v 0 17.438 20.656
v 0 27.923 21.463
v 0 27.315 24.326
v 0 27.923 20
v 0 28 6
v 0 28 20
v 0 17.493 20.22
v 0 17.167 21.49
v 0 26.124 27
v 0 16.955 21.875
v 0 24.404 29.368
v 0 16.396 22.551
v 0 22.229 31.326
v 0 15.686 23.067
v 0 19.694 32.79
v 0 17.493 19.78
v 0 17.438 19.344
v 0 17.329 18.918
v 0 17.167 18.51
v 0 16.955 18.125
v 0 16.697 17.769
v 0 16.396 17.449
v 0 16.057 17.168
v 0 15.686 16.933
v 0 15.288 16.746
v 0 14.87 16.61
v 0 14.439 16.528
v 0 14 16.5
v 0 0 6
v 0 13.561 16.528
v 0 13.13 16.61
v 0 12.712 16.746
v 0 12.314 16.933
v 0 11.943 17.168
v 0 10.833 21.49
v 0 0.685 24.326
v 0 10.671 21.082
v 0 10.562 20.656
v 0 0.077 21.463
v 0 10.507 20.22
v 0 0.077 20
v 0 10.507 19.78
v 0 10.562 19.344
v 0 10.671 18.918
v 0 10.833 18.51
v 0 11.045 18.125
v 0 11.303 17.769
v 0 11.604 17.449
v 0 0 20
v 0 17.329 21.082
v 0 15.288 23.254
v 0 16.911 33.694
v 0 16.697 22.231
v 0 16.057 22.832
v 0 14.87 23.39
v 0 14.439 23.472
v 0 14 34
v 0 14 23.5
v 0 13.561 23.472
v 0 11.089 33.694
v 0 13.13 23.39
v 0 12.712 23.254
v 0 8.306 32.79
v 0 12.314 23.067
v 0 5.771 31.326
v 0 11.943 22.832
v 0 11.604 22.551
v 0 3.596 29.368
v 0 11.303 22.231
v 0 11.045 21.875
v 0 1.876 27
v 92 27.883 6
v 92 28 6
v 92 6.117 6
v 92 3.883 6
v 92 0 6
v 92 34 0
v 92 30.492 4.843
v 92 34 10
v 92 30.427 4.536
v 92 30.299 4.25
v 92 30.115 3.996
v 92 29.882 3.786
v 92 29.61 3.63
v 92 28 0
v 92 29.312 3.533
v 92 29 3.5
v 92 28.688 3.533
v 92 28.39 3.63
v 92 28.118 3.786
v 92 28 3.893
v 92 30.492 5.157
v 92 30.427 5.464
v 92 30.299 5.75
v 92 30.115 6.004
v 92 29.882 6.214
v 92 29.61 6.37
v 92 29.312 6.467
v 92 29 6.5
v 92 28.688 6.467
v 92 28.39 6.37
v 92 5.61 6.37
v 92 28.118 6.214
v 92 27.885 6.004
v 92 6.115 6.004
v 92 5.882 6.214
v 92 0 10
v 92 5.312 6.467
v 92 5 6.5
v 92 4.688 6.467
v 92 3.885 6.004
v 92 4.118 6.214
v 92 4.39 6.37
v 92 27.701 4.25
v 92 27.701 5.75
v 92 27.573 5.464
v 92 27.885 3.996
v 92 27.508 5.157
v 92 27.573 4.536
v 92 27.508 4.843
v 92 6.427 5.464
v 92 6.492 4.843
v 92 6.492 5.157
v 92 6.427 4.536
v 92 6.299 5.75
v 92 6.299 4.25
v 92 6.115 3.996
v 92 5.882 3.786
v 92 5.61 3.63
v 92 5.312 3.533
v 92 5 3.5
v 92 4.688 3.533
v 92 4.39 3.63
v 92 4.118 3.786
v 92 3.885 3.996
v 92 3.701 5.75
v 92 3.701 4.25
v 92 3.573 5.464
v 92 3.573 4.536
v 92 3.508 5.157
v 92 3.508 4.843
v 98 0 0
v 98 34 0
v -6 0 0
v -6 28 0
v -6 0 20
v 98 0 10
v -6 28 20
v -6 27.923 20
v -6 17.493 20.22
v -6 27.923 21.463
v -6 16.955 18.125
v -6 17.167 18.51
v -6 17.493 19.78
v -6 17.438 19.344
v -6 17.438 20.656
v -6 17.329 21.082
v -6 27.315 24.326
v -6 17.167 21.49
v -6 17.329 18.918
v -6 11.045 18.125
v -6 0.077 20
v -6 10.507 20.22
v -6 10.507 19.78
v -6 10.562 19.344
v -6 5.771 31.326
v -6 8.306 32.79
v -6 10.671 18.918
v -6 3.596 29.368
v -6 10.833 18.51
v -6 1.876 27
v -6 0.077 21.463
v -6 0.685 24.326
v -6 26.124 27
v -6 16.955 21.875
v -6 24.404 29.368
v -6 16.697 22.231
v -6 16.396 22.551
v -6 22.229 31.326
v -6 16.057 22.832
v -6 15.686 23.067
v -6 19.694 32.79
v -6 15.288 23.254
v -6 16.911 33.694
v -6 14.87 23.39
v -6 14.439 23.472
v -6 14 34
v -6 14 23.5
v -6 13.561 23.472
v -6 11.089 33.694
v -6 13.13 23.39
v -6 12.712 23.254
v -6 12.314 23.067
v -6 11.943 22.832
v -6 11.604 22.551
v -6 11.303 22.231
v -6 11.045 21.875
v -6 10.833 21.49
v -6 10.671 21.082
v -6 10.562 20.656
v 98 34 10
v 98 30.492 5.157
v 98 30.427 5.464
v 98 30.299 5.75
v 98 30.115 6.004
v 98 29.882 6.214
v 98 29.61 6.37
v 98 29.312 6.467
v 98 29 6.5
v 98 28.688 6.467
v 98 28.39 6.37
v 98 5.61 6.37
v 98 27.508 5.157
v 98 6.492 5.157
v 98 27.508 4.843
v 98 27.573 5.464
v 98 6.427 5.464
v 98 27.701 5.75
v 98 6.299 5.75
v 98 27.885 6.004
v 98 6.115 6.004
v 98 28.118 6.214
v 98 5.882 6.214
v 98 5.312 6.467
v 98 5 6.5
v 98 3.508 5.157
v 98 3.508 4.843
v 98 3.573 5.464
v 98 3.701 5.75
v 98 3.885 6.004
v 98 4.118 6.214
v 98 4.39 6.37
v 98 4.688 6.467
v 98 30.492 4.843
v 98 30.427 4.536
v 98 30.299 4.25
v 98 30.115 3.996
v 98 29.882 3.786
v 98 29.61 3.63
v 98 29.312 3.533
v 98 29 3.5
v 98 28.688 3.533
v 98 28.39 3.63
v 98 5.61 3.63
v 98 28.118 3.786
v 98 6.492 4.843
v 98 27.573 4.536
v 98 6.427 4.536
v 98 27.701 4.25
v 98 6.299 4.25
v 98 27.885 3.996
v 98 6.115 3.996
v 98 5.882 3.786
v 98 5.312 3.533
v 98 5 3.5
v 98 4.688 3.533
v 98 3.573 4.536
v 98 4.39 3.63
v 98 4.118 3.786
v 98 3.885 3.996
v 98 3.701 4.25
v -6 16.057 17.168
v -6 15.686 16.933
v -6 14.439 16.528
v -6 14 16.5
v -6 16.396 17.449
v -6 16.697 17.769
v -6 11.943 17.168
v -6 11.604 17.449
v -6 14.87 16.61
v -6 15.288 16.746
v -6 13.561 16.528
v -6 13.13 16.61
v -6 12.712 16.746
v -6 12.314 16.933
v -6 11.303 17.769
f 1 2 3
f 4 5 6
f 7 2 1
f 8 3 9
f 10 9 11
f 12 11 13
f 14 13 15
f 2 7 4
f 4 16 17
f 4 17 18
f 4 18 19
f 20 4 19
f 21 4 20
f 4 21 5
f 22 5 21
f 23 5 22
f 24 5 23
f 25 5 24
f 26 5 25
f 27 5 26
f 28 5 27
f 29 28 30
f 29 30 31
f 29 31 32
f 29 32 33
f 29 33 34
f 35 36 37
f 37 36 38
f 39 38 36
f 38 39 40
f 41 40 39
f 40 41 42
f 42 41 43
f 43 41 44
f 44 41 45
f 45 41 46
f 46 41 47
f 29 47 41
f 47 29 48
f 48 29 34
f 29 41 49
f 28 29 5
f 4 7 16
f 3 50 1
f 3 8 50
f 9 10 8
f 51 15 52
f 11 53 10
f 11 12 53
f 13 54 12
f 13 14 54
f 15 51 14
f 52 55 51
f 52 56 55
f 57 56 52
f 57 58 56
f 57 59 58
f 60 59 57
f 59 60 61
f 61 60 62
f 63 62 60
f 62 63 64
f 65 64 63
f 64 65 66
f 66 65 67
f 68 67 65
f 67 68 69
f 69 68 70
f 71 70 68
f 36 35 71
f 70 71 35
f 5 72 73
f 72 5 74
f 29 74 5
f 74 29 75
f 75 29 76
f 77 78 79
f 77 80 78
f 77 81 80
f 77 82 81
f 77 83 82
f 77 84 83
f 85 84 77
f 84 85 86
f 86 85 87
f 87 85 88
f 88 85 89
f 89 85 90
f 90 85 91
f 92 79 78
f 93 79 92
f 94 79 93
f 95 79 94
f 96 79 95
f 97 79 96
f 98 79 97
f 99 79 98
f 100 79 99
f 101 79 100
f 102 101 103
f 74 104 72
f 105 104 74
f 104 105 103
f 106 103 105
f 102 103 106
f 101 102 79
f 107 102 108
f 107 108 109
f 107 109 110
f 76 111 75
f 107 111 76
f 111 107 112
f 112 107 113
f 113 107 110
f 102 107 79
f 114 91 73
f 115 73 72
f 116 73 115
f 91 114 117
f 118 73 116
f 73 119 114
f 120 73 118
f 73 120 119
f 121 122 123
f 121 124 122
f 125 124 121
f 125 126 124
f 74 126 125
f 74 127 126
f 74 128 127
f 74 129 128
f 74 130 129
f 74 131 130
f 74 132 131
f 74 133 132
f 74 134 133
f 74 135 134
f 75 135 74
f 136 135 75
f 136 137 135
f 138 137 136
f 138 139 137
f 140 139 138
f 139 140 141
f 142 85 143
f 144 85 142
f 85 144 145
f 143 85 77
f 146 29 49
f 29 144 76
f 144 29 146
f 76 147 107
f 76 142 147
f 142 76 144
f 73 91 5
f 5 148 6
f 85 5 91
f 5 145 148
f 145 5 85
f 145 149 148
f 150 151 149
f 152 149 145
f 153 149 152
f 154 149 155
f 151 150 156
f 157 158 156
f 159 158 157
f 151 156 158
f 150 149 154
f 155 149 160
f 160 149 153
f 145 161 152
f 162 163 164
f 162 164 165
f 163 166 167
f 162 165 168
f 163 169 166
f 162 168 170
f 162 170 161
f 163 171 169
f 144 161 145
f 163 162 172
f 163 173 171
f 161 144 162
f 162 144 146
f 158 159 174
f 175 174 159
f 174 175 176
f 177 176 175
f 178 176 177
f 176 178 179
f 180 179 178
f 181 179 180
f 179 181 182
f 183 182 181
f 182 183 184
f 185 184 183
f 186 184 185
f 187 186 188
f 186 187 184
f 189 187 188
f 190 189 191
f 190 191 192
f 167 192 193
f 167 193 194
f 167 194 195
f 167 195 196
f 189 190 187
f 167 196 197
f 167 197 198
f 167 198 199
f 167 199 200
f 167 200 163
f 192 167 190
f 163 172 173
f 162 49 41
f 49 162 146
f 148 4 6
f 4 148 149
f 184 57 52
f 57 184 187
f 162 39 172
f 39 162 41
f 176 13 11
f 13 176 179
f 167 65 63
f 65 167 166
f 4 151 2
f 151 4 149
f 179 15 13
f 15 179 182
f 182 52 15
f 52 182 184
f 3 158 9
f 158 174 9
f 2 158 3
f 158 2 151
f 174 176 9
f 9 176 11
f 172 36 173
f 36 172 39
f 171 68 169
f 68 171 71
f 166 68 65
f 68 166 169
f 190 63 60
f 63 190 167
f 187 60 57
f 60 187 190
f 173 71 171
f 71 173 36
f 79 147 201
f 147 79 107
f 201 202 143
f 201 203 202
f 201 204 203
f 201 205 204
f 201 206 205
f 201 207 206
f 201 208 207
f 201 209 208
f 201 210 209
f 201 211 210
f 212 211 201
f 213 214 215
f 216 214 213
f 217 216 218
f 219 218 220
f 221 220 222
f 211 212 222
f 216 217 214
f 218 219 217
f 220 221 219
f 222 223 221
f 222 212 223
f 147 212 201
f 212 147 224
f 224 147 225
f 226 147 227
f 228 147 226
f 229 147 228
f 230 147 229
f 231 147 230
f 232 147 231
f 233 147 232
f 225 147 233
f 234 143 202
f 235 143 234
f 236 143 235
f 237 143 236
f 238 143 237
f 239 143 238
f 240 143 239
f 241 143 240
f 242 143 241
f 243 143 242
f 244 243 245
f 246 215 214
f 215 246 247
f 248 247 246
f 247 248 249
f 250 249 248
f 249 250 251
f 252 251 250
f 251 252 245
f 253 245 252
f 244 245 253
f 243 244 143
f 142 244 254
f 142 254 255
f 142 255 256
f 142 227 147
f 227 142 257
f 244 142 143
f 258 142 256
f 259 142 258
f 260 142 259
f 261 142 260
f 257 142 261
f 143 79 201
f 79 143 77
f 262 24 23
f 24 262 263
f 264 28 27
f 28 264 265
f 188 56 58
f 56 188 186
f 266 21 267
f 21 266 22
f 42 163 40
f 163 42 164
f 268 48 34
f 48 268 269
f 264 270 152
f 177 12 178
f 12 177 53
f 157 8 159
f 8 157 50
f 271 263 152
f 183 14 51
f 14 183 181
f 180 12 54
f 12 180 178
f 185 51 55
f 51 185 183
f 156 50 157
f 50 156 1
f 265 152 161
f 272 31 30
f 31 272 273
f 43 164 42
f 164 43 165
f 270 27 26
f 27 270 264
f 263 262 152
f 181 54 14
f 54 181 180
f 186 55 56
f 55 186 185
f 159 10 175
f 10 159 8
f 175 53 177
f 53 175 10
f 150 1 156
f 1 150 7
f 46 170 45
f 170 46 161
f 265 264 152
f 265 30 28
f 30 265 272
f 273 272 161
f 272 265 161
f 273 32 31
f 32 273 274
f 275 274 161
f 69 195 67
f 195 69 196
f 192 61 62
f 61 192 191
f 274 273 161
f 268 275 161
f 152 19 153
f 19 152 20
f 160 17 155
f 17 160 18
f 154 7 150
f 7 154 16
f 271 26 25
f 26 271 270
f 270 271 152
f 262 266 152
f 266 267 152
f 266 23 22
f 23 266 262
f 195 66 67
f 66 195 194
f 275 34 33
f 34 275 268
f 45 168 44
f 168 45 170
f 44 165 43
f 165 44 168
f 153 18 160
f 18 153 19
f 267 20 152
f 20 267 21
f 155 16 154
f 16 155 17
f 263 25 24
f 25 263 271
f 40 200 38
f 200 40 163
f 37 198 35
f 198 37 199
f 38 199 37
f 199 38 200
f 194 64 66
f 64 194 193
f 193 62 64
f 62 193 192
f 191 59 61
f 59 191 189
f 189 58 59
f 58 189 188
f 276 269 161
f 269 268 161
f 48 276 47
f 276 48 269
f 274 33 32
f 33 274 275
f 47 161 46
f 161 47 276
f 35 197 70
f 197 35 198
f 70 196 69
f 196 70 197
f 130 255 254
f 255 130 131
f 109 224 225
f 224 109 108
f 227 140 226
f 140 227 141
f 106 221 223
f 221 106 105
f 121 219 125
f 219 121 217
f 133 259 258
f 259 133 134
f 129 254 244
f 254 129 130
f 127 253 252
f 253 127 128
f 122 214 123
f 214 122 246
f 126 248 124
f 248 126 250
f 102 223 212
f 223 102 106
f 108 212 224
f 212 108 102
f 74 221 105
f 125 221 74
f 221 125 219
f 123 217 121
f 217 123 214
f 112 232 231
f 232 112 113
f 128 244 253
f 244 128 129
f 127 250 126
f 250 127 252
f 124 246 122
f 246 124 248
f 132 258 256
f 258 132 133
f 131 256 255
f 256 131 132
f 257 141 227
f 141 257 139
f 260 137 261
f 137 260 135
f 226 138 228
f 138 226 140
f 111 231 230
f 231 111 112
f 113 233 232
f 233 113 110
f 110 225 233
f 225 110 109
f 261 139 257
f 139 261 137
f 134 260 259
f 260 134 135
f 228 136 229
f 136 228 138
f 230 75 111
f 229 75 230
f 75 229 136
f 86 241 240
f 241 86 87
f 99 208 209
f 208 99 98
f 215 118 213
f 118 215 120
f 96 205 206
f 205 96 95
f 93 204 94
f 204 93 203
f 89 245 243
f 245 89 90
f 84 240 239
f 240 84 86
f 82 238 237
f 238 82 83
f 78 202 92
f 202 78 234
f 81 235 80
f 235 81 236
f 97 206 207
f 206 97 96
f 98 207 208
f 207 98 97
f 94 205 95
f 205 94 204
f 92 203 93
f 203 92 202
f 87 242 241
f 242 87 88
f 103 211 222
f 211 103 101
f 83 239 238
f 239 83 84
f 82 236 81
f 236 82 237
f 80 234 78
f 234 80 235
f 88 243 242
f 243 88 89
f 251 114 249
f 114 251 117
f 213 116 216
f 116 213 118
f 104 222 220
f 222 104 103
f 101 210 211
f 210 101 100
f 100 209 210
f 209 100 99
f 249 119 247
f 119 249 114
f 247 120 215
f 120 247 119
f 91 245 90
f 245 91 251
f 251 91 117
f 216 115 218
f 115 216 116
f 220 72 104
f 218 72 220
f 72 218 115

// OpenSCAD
beam_thikness = 6;
beam_width = 28;
beam_hole_d = 7;
beam_holes_dist = 15.5;

camera_console_out = 80;
stand_height = camera_console_out + 2 * beam_thikness;

stand_length = 34;
stand_width = 10;
stand_hole1_y_pos = 5;
stand_hole2_y_pos = 29;
stand_holes_d = 3;

module camera_arm_stand() {
    difference() {
        union() {
            cube([stand_height, beam_width, beam_thikness]);
            translate([- beam_thikness, 0, 0])
                cube([beam_thikness, beam_width, beam_width / 2 + beam_thikness]);
            translate([- beam_thikness, beam_width / 2, beam_width / 2 + beam_thikness])
                rotate([0, 90, 0])
                    cylinder(d=beam_width, h=beam_thikness);        
            translate([stand_height, 0, 0])
                cube([beam_thikness, stand_length, stand_width]);
        }

        translate([- beam_thikness, beam_width / 2, beam_width / 2 + beam_thikness])
            rotate([0, 90, 0])
                cylinder(d=beam_hole_d, h=beam_thikness, $fn=50);
        translate([stand_height, stand_hole1_y_pos, stand_width / 2])
            rotate([0, 90, 0])
                cylinder(d=stand_holes_d, h=beam_thikness, $fn=30);
        translate([stand_height, stand_hole2_y_pos, stand_width / 2])
            rotate([0, 90, 0])
                cylinder(d=stand_holes_d, h=beam_thikness, $fn=30);
    }
}

camera_arm_stand();
